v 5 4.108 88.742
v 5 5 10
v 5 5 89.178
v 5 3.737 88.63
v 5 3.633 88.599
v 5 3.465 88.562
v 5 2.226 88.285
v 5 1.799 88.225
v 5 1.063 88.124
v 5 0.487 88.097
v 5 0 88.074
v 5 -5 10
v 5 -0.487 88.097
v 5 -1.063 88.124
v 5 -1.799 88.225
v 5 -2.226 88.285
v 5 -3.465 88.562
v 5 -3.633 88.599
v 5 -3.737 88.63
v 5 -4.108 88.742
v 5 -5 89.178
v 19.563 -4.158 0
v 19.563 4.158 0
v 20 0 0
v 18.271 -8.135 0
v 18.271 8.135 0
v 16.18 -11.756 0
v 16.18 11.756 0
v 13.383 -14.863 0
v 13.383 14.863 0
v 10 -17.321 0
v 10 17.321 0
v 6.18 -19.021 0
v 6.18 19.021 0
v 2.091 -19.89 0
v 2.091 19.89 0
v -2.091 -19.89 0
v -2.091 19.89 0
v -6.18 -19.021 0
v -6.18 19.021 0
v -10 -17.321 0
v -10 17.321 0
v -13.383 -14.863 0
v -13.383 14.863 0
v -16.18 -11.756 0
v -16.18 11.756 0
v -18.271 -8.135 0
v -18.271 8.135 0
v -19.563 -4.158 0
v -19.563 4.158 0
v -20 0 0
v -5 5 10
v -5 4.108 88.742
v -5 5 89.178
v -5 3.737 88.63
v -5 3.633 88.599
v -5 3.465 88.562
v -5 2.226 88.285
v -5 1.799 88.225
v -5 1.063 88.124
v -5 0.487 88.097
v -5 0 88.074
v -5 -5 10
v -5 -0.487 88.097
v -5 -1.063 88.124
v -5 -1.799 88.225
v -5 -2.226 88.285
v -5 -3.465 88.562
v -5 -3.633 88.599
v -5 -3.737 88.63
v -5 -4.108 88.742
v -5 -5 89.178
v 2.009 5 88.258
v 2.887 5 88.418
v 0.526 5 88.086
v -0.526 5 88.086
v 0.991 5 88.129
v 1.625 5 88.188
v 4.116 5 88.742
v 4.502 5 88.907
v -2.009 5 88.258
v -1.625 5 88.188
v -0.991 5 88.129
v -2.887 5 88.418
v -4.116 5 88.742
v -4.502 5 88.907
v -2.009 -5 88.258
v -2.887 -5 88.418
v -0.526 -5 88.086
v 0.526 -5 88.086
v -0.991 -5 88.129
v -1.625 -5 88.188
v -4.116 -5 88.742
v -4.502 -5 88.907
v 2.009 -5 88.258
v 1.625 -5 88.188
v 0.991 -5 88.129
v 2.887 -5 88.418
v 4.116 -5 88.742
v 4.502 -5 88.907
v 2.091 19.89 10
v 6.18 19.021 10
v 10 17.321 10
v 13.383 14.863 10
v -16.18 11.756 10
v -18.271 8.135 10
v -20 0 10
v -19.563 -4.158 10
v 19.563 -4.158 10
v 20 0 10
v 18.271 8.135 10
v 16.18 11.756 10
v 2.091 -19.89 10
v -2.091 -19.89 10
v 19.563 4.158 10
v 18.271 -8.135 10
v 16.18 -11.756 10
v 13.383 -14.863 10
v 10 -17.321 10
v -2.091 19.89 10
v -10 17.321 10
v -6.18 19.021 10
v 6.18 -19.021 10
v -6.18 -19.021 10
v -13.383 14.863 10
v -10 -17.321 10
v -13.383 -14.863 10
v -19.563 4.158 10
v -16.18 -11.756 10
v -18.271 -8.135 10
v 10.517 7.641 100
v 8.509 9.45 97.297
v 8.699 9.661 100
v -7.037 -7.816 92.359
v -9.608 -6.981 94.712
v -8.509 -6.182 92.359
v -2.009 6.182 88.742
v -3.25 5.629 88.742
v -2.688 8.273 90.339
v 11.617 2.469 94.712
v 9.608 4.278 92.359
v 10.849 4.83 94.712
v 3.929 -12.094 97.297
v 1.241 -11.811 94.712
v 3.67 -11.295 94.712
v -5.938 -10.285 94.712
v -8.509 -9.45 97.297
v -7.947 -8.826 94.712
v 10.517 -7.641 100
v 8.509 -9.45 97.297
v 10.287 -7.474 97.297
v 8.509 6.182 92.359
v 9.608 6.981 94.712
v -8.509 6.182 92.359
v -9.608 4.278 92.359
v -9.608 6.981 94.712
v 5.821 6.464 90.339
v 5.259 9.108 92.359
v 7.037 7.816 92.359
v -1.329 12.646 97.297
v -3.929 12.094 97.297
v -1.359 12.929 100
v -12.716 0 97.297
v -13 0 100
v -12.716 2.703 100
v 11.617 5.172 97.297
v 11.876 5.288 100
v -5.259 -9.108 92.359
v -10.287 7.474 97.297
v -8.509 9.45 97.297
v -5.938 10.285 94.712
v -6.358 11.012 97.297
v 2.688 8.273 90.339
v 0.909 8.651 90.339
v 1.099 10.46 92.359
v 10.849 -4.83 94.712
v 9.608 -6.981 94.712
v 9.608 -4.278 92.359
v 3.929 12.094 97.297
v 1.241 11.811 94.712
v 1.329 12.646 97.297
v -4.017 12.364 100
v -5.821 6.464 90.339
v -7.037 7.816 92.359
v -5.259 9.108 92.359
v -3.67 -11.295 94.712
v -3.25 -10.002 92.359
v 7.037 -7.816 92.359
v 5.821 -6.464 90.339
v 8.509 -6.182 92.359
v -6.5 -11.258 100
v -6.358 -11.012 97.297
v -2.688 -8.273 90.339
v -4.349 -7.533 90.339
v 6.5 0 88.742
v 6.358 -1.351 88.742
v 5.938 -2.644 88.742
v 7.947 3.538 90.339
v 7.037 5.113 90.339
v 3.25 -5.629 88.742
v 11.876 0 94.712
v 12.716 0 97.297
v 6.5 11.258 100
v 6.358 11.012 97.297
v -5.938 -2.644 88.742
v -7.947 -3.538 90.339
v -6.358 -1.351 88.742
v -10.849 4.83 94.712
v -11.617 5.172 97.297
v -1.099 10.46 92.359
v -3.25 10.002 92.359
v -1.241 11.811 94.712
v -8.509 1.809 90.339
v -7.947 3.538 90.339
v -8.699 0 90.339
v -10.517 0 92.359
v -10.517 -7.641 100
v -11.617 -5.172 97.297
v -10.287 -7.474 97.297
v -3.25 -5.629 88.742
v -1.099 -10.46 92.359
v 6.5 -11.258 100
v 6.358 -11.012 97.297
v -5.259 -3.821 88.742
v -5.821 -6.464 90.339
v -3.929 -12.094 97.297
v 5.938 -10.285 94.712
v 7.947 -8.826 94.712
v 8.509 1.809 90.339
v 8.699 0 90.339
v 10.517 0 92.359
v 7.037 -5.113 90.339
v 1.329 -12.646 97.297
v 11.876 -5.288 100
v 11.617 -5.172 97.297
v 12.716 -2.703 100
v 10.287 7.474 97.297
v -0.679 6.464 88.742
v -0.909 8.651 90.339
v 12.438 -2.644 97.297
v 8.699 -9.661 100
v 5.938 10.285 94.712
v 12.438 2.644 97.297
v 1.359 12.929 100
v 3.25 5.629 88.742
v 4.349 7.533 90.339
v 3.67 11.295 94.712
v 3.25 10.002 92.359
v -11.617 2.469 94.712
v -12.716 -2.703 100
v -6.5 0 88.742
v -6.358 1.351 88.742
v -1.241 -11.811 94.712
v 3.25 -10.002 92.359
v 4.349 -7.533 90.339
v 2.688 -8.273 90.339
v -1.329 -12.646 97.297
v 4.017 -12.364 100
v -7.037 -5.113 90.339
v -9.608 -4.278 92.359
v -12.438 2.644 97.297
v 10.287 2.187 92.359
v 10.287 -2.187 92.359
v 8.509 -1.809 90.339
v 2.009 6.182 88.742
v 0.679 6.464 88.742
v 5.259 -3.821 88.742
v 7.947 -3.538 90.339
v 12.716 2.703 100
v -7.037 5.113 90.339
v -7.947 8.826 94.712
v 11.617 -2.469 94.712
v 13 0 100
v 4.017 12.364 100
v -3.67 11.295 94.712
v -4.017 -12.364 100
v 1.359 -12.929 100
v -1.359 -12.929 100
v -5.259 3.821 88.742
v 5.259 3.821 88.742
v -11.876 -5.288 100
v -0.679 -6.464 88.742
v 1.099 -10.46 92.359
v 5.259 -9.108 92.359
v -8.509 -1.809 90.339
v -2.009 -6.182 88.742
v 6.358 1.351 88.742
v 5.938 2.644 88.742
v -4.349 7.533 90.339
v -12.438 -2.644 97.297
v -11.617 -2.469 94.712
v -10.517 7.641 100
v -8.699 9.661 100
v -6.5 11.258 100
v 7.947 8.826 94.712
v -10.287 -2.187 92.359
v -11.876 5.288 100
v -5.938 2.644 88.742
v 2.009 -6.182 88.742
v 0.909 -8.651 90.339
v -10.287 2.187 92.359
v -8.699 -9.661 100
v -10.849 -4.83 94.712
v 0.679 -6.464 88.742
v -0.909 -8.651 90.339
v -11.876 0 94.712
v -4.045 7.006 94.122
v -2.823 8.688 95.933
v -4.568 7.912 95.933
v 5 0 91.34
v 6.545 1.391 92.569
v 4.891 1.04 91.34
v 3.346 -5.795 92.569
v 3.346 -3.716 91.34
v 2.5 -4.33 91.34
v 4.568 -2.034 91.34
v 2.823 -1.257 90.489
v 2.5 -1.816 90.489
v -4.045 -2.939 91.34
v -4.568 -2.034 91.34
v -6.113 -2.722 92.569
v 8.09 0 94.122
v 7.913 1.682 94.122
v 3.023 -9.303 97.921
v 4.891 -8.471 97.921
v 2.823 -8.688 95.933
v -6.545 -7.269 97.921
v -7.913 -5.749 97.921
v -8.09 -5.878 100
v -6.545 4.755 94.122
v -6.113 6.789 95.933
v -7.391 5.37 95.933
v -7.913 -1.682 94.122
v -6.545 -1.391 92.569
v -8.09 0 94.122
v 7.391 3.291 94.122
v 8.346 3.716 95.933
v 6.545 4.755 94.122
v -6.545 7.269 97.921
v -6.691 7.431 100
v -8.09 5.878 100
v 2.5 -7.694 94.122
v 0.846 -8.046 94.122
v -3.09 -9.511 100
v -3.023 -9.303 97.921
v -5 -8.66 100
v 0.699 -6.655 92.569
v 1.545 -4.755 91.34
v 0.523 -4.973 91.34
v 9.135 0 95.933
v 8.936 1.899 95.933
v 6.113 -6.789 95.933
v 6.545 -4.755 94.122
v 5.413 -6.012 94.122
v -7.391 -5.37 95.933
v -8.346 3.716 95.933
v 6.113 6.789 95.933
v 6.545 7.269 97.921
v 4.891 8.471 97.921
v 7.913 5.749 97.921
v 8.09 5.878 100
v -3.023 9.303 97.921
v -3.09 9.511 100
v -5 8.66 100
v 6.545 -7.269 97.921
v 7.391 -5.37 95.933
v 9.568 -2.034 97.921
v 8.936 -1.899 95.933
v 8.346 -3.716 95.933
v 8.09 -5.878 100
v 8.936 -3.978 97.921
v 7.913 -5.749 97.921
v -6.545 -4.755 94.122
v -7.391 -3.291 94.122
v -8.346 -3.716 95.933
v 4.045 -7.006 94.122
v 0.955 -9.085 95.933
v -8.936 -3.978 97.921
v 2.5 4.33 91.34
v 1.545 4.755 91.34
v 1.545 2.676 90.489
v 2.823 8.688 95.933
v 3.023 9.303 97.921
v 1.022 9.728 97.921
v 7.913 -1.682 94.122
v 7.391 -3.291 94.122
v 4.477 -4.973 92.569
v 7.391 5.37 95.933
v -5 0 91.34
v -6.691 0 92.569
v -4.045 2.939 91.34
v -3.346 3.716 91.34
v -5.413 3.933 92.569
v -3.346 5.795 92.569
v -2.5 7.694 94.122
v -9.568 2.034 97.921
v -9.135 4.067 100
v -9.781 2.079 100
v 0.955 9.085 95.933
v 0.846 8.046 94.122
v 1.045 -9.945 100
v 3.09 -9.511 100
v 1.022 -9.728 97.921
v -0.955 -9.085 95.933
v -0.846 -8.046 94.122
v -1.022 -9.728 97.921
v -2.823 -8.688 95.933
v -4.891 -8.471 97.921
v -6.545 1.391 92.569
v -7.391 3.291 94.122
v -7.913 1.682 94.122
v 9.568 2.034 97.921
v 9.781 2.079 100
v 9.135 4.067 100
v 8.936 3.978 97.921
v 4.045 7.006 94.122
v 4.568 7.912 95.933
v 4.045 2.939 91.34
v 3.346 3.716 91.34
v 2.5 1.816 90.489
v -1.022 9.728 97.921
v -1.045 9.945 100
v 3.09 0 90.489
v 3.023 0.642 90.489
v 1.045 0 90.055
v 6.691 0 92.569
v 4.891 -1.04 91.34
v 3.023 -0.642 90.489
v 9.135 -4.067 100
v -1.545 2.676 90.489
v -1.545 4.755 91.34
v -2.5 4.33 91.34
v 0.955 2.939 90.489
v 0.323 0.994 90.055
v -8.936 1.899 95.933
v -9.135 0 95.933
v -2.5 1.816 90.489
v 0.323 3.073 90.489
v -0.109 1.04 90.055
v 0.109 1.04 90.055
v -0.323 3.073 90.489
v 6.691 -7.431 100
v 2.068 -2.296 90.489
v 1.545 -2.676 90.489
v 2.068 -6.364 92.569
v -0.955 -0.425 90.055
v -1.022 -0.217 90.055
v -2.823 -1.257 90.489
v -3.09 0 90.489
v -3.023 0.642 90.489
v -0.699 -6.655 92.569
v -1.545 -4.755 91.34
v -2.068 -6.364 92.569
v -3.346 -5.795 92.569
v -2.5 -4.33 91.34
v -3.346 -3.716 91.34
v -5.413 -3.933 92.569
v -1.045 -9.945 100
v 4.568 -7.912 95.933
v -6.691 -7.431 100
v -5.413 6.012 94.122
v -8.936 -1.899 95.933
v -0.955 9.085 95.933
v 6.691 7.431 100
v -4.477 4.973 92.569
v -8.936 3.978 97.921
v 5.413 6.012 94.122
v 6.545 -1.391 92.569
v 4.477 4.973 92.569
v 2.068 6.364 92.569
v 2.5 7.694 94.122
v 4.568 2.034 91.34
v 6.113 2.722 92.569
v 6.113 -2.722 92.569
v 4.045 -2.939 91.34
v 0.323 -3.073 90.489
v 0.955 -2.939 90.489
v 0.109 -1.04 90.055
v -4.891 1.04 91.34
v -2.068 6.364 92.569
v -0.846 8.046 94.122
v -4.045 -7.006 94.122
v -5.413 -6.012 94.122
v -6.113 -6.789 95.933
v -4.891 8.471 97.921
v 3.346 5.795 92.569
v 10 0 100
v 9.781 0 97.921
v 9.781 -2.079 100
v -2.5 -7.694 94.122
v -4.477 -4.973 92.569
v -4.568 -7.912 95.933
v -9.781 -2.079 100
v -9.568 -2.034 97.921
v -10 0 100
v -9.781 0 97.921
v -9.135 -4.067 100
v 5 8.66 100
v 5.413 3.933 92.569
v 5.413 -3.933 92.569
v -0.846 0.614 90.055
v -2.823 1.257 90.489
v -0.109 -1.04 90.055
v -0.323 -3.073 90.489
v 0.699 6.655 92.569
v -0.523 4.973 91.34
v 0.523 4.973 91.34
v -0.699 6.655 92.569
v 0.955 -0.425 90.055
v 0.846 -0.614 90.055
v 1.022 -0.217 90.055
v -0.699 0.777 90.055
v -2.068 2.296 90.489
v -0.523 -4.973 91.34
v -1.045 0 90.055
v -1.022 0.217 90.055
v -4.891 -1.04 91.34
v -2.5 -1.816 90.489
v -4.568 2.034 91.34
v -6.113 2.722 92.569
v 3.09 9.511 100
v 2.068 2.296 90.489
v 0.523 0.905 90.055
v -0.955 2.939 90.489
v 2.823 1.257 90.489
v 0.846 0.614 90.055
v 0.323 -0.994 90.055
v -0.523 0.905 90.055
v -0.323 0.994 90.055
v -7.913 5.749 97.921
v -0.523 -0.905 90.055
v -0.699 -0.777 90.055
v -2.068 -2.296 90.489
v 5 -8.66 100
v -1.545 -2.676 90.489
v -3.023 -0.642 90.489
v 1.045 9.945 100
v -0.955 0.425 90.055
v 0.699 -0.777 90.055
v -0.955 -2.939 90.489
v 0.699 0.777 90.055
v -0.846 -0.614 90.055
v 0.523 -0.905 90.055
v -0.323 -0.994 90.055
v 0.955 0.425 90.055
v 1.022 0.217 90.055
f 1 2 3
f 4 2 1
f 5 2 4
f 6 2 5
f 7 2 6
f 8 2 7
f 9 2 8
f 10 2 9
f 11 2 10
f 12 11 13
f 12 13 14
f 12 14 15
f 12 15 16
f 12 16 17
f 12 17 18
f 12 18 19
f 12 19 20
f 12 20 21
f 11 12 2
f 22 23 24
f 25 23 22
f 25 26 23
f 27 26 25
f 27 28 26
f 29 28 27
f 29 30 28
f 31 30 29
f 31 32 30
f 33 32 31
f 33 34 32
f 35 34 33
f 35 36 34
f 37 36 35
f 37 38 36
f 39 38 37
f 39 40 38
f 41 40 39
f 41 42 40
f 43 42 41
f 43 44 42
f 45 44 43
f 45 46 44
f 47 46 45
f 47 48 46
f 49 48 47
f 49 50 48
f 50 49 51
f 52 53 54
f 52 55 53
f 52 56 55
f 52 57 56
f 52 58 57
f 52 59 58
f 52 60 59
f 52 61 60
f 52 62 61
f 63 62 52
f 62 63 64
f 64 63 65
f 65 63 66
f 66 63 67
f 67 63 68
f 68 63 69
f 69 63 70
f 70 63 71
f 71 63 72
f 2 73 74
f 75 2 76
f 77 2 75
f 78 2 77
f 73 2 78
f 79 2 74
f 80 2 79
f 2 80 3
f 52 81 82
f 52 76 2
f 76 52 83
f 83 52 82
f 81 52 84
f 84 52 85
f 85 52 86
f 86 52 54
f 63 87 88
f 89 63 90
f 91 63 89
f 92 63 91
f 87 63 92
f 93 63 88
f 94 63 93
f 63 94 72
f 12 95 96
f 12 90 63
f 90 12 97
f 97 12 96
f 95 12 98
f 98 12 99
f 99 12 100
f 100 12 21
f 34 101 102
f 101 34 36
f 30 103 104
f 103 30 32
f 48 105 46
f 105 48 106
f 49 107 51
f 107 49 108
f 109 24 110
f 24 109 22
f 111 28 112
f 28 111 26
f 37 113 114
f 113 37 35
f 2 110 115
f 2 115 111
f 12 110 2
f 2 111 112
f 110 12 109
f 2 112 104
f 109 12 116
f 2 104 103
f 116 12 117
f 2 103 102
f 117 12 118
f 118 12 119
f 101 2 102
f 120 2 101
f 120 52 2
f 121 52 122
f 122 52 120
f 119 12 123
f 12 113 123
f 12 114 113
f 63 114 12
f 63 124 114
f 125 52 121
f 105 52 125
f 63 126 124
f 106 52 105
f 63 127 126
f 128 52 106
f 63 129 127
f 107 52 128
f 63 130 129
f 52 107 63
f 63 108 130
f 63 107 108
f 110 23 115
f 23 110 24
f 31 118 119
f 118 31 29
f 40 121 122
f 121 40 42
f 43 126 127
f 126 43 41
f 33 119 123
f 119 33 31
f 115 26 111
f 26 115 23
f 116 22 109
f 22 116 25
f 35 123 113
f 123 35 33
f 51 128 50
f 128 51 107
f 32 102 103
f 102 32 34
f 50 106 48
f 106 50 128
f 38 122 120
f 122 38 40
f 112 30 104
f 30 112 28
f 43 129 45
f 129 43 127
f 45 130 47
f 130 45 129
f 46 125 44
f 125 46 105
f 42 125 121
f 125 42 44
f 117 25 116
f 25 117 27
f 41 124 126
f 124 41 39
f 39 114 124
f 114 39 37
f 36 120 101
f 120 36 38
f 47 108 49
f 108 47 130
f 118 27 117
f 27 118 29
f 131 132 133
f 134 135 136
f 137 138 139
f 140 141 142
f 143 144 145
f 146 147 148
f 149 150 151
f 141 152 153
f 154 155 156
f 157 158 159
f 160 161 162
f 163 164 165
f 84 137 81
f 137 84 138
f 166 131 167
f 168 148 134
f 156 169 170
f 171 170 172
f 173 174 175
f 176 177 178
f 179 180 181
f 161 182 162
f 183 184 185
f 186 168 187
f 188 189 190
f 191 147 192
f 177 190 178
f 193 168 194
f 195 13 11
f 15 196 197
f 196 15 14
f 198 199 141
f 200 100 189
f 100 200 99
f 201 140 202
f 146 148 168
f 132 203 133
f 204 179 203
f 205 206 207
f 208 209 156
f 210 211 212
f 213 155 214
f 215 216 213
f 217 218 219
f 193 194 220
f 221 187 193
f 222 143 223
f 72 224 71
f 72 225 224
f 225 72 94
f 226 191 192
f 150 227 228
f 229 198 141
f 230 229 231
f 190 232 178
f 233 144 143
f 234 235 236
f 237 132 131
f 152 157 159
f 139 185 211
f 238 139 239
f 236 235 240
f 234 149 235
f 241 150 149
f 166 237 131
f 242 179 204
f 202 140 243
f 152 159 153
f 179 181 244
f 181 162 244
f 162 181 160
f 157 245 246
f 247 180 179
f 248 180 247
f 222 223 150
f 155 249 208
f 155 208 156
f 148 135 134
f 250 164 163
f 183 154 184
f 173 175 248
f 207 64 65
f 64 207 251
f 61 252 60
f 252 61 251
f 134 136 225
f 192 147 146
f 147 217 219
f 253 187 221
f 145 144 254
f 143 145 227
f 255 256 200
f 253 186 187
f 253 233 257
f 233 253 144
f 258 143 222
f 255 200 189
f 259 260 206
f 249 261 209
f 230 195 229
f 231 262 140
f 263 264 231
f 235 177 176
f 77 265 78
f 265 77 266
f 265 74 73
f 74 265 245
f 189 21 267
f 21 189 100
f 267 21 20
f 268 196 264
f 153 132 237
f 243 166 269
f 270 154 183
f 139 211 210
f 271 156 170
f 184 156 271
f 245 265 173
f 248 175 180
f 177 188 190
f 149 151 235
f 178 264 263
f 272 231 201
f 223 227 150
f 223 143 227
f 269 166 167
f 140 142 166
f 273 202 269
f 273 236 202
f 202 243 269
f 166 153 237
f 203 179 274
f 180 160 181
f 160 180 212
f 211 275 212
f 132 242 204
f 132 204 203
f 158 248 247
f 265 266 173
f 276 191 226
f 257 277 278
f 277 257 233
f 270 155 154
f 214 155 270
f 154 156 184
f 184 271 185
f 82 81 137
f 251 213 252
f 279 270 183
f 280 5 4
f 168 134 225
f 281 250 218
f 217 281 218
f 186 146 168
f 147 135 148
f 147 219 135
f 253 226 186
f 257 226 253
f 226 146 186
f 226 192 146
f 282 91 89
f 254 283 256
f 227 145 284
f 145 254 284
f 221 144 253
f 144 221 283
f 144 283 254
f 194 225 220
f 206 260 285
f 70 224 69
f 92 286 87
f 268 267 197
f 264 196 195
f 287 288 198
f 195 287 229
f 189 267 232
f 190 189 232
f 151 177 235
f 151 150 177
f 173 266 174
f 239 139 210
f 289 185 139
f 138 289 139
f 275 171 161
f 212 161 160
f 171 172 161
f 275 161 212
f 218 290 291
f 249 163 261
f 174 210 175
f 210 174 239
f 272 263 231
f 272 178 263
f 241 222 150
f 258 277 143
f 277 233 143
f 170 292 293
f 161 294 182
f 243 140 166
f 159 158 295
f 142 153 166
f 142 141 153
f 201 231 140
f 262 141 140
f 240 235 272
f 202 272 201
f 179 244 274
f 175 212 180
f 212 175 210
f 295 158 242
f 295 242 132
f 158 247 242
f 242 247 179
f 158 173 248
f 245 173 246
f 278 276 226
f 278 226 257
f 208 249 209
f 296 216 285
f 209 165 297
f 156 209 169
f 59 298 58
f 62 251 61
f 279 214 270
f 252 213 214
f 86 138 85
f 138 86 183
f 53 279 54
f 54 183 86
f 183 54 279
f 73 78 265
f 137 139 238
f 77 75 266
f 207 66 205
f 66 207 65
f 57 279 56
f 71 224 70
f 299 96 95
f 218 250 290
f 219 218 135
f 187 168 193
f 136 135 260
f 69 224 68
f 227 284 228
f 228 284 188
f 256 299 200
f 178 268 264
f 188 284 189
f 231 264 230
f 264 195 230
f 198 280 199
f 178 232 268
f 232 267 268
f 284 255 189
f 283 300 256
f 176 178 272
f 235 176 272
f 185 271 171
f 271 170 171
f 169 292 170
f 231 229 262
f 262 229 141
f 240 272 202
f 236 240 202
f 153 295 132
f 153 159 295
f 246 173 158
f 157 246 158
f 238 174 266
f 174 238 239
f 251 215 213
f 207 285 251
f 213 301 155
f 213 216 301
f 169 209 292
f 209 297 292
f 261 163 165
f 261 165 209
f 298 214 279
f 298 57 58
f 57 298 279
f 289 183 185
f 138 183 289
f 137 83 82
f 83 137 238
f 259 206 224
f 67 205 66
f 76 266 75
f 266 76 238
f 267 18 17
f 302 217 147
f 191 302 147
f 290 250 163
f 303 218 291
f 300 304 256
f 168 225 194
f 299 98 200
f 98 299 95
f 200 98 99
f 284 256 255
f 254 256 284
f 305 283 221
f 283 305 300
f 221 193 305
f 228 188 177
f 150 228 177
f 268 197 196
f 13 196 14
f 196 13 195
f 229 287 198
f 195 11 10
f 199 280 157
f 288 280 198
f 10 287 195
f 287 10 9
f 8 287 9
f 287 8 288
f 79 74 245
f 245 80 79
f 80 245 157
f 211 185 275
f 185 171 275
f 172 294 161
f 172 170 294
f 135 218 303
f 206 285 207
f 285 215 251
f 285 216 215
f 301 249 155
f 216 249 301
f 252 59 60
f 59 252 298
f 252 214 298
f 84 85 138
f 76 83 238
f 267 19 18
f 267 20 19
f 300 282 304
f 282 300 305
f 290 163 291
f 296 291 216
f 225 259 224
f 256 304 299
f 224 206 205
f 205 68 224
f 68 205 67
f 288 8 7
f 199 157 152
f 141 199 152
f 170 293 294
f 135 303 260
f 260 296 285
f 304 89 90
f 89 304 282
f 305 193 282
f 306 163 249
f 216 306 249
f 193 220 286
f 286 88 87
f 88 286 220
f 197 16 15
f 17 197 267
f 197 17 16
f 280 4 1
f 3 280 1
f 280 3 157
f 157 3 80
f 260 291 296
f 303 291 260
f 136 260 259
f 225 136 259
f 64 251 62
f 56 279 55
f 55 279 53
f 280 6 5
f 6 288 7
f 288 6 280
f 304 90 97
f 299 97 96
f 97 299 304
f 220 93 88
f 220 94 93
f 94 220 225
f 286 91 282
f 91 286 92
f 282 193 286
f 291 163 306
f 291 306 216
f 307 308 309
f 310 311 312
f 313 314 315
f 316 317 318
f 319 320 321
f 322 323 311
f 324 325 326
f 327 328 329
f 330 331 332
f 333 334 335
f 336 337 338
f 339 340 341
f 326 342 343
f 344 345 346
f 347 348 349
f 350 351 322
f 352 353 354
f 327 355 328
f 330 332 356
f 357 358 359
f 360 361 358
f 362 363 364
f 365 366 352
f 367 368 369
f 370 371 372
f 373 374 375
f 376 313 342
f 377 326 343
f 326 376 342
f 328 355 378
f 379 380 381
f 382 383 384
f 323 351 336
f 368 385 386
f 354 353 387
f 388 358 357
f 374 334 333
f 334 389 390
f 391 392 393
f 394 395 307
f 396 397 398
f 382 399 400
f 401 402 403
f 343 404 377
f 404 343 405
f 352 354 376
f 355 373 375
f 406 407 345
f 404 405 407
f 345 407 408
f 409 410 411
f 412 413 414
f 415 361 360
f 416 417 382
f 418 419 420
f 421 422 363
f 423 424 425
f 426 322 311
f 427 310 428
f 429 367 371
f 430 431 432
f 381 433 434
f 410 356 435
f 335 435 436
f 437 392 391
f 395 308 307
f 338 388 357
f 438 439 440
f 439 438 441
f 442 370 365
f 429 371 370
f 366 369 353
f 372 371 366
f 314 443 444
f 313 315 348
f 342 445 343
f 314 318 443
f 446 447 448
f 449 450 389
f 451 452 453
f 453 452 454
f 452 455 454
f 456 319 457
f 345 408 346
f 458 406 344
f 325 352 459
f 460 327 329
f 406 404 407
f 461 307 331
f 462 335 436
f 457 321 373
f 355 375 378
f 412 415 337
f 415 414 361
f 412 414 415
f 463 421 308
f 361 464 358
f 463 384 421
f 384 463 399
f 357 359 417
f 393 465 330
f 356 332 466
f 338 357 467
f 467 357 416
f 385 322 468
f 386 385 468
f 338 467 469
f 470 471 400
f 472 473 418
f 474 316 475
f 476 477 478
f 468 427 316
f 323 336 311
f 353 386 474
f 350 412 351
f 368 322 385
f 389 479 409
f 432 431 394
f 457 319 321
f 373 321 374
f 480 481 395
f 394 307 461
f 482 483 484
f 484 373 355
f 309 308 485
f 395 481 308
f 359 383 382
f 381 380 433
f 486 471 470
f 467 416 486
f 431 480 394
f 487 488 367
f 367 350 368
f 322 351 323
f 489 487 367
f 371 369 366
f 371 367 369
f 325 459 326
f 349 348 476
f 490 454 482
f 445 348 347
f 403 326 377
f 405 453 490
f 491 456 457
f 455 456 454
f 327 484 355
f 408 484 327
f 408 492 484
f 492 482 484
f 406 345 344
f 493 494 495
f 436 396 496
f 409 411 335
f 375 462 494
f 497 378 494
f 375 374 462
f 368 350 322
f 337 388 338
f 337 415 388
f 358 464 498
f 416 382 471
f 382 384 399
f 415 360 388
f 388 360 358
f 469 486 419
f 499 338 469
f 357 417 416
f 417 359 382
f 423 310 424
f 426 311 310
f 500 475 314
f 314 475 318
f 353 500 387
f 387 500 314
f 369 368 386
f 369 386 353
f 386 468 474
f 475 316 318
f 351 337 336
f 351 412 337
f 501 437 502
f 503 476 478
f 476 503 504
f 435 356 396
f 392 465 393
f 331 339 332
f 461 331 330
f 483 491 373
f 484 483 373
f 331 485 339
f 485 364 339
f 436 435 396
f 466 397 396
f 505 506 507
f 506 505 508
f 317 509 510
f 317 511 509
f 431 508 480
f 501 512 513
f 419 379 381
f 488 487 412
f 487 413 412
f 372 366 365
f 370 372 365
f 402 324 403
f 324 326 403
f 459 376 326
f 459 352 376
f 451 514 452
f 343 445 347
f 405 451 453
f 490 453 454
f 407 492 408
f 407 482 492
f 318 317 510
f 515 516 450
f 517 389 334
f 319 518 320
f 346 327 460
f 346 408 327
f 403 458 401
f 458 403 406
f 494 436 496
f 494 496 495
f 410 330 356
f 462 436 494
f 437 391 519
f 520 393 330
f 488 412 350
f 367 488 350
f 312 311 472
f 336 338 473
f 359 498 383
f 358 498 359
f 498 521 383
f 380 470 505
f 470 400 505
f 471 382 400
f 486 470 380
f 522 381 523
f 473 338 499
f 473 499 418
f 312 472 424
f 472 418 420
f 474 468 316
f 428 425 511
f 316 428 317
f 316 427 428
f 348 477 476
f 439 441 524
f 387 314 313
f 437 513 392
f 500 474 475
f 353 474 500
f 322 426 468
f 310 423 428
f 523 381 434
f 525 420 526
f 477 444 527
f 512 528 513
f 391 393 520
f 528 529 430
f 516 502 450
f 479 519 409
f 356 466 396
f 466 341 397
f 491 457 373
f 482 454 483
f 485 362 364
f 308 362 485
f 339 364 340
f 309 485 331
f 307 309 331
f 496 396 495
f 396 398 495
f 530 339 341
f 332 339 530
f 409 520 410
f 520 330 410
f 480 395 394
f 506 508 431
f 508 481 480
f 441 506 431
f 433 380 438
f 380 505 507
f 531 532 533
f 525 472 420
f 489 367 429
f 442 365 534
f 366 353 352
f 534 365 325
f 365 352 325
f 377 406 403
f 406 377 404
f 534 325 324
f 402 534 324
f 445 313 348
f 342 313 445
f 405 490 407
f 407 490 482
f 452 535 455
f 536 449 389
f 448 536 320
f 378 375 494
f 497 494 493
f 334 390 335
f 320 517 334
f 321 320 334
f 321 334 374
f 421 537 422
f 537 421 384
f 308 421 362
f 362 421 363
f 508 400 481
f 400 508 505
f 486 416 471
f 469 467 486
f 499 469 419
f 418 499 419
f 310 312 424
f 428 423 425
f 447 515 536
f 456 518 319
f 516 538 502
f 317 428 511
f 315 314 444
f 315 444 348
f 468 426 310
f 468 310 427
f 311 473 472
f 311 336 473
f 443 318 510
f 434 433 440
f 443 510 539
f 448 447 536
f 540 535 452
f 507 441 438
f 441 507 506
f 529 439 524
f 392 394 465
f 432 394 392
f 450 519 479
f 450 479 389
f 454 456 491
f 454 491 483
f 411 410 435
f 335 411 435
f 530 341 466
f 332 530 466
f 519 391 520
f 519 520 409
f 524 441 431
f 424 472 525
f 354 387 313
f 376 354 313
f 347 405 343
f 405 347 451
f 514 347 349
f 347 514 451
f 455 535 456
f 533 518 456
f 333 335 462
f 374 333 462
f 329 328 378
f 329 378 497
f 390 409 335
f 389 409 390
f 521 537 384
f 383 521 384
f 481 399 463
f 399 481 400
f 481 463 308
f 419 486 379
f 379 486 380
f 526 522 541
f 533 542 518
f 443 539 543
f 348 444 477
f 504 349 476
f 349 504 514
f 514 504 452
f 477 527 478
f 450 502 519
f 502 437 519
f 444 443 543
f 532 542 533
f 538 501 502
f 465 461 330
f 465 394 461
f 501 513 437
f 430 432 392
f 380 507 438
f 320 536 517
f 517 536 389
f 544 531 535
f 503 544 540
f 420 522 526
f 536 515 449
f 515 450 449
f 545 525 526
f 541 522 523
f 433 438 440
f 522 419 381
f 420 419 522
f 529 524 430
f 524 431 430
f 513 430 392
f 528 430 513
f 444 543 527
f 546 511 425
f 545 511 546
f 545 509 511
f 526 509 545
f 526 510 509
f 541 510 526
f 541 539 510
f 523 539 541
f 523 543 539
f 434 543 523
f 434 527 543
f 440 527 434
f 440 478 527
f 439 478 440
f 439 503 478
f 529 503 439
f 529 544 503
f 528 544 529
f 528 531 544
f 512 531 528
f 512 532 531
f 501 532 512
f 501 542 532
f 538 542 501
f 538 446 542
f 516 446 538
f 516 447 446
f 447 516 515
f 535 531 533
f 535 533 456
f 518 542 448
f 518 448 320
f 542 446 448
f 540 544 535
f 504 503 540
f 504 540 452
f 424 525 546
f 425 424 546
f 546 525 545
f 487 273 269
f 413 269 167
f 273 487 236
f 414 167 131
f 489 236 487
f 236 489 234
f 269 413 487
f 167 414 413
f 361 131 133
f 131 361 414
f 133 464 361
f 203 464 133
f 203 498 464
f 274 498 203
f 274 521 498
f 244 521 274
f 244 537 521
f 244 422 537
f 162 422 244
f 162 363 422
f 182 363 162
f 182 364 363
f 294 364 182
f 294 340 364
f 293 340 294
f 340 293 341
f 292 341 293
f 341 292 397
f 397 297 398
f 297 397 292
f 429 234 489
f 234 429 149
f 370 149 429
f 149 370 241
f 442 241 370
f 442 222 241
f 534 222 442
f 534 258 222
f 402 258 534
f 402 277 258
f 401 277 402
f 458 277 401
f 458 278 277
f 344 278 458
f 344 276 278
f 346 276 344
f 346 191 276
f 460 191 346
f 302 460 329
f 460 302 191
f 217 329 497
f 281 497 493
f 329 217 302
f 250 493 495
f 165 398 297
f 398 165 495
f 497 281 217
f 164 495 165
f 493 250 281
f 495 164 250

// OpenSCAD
difference(){
    union() {
        translate([-5,-5,0]){
            cube([10,10,100]);
        }
        cylinder(10, r=20);
        translate([0,0,100]) {
            sphere(13);
        }
    }
    union() {
        translate([0,0,100]){
            sphere(10);
        }        
        translate([0,0,150]){
            cube([100,100,100], center=true);
        }
    }
    
}
